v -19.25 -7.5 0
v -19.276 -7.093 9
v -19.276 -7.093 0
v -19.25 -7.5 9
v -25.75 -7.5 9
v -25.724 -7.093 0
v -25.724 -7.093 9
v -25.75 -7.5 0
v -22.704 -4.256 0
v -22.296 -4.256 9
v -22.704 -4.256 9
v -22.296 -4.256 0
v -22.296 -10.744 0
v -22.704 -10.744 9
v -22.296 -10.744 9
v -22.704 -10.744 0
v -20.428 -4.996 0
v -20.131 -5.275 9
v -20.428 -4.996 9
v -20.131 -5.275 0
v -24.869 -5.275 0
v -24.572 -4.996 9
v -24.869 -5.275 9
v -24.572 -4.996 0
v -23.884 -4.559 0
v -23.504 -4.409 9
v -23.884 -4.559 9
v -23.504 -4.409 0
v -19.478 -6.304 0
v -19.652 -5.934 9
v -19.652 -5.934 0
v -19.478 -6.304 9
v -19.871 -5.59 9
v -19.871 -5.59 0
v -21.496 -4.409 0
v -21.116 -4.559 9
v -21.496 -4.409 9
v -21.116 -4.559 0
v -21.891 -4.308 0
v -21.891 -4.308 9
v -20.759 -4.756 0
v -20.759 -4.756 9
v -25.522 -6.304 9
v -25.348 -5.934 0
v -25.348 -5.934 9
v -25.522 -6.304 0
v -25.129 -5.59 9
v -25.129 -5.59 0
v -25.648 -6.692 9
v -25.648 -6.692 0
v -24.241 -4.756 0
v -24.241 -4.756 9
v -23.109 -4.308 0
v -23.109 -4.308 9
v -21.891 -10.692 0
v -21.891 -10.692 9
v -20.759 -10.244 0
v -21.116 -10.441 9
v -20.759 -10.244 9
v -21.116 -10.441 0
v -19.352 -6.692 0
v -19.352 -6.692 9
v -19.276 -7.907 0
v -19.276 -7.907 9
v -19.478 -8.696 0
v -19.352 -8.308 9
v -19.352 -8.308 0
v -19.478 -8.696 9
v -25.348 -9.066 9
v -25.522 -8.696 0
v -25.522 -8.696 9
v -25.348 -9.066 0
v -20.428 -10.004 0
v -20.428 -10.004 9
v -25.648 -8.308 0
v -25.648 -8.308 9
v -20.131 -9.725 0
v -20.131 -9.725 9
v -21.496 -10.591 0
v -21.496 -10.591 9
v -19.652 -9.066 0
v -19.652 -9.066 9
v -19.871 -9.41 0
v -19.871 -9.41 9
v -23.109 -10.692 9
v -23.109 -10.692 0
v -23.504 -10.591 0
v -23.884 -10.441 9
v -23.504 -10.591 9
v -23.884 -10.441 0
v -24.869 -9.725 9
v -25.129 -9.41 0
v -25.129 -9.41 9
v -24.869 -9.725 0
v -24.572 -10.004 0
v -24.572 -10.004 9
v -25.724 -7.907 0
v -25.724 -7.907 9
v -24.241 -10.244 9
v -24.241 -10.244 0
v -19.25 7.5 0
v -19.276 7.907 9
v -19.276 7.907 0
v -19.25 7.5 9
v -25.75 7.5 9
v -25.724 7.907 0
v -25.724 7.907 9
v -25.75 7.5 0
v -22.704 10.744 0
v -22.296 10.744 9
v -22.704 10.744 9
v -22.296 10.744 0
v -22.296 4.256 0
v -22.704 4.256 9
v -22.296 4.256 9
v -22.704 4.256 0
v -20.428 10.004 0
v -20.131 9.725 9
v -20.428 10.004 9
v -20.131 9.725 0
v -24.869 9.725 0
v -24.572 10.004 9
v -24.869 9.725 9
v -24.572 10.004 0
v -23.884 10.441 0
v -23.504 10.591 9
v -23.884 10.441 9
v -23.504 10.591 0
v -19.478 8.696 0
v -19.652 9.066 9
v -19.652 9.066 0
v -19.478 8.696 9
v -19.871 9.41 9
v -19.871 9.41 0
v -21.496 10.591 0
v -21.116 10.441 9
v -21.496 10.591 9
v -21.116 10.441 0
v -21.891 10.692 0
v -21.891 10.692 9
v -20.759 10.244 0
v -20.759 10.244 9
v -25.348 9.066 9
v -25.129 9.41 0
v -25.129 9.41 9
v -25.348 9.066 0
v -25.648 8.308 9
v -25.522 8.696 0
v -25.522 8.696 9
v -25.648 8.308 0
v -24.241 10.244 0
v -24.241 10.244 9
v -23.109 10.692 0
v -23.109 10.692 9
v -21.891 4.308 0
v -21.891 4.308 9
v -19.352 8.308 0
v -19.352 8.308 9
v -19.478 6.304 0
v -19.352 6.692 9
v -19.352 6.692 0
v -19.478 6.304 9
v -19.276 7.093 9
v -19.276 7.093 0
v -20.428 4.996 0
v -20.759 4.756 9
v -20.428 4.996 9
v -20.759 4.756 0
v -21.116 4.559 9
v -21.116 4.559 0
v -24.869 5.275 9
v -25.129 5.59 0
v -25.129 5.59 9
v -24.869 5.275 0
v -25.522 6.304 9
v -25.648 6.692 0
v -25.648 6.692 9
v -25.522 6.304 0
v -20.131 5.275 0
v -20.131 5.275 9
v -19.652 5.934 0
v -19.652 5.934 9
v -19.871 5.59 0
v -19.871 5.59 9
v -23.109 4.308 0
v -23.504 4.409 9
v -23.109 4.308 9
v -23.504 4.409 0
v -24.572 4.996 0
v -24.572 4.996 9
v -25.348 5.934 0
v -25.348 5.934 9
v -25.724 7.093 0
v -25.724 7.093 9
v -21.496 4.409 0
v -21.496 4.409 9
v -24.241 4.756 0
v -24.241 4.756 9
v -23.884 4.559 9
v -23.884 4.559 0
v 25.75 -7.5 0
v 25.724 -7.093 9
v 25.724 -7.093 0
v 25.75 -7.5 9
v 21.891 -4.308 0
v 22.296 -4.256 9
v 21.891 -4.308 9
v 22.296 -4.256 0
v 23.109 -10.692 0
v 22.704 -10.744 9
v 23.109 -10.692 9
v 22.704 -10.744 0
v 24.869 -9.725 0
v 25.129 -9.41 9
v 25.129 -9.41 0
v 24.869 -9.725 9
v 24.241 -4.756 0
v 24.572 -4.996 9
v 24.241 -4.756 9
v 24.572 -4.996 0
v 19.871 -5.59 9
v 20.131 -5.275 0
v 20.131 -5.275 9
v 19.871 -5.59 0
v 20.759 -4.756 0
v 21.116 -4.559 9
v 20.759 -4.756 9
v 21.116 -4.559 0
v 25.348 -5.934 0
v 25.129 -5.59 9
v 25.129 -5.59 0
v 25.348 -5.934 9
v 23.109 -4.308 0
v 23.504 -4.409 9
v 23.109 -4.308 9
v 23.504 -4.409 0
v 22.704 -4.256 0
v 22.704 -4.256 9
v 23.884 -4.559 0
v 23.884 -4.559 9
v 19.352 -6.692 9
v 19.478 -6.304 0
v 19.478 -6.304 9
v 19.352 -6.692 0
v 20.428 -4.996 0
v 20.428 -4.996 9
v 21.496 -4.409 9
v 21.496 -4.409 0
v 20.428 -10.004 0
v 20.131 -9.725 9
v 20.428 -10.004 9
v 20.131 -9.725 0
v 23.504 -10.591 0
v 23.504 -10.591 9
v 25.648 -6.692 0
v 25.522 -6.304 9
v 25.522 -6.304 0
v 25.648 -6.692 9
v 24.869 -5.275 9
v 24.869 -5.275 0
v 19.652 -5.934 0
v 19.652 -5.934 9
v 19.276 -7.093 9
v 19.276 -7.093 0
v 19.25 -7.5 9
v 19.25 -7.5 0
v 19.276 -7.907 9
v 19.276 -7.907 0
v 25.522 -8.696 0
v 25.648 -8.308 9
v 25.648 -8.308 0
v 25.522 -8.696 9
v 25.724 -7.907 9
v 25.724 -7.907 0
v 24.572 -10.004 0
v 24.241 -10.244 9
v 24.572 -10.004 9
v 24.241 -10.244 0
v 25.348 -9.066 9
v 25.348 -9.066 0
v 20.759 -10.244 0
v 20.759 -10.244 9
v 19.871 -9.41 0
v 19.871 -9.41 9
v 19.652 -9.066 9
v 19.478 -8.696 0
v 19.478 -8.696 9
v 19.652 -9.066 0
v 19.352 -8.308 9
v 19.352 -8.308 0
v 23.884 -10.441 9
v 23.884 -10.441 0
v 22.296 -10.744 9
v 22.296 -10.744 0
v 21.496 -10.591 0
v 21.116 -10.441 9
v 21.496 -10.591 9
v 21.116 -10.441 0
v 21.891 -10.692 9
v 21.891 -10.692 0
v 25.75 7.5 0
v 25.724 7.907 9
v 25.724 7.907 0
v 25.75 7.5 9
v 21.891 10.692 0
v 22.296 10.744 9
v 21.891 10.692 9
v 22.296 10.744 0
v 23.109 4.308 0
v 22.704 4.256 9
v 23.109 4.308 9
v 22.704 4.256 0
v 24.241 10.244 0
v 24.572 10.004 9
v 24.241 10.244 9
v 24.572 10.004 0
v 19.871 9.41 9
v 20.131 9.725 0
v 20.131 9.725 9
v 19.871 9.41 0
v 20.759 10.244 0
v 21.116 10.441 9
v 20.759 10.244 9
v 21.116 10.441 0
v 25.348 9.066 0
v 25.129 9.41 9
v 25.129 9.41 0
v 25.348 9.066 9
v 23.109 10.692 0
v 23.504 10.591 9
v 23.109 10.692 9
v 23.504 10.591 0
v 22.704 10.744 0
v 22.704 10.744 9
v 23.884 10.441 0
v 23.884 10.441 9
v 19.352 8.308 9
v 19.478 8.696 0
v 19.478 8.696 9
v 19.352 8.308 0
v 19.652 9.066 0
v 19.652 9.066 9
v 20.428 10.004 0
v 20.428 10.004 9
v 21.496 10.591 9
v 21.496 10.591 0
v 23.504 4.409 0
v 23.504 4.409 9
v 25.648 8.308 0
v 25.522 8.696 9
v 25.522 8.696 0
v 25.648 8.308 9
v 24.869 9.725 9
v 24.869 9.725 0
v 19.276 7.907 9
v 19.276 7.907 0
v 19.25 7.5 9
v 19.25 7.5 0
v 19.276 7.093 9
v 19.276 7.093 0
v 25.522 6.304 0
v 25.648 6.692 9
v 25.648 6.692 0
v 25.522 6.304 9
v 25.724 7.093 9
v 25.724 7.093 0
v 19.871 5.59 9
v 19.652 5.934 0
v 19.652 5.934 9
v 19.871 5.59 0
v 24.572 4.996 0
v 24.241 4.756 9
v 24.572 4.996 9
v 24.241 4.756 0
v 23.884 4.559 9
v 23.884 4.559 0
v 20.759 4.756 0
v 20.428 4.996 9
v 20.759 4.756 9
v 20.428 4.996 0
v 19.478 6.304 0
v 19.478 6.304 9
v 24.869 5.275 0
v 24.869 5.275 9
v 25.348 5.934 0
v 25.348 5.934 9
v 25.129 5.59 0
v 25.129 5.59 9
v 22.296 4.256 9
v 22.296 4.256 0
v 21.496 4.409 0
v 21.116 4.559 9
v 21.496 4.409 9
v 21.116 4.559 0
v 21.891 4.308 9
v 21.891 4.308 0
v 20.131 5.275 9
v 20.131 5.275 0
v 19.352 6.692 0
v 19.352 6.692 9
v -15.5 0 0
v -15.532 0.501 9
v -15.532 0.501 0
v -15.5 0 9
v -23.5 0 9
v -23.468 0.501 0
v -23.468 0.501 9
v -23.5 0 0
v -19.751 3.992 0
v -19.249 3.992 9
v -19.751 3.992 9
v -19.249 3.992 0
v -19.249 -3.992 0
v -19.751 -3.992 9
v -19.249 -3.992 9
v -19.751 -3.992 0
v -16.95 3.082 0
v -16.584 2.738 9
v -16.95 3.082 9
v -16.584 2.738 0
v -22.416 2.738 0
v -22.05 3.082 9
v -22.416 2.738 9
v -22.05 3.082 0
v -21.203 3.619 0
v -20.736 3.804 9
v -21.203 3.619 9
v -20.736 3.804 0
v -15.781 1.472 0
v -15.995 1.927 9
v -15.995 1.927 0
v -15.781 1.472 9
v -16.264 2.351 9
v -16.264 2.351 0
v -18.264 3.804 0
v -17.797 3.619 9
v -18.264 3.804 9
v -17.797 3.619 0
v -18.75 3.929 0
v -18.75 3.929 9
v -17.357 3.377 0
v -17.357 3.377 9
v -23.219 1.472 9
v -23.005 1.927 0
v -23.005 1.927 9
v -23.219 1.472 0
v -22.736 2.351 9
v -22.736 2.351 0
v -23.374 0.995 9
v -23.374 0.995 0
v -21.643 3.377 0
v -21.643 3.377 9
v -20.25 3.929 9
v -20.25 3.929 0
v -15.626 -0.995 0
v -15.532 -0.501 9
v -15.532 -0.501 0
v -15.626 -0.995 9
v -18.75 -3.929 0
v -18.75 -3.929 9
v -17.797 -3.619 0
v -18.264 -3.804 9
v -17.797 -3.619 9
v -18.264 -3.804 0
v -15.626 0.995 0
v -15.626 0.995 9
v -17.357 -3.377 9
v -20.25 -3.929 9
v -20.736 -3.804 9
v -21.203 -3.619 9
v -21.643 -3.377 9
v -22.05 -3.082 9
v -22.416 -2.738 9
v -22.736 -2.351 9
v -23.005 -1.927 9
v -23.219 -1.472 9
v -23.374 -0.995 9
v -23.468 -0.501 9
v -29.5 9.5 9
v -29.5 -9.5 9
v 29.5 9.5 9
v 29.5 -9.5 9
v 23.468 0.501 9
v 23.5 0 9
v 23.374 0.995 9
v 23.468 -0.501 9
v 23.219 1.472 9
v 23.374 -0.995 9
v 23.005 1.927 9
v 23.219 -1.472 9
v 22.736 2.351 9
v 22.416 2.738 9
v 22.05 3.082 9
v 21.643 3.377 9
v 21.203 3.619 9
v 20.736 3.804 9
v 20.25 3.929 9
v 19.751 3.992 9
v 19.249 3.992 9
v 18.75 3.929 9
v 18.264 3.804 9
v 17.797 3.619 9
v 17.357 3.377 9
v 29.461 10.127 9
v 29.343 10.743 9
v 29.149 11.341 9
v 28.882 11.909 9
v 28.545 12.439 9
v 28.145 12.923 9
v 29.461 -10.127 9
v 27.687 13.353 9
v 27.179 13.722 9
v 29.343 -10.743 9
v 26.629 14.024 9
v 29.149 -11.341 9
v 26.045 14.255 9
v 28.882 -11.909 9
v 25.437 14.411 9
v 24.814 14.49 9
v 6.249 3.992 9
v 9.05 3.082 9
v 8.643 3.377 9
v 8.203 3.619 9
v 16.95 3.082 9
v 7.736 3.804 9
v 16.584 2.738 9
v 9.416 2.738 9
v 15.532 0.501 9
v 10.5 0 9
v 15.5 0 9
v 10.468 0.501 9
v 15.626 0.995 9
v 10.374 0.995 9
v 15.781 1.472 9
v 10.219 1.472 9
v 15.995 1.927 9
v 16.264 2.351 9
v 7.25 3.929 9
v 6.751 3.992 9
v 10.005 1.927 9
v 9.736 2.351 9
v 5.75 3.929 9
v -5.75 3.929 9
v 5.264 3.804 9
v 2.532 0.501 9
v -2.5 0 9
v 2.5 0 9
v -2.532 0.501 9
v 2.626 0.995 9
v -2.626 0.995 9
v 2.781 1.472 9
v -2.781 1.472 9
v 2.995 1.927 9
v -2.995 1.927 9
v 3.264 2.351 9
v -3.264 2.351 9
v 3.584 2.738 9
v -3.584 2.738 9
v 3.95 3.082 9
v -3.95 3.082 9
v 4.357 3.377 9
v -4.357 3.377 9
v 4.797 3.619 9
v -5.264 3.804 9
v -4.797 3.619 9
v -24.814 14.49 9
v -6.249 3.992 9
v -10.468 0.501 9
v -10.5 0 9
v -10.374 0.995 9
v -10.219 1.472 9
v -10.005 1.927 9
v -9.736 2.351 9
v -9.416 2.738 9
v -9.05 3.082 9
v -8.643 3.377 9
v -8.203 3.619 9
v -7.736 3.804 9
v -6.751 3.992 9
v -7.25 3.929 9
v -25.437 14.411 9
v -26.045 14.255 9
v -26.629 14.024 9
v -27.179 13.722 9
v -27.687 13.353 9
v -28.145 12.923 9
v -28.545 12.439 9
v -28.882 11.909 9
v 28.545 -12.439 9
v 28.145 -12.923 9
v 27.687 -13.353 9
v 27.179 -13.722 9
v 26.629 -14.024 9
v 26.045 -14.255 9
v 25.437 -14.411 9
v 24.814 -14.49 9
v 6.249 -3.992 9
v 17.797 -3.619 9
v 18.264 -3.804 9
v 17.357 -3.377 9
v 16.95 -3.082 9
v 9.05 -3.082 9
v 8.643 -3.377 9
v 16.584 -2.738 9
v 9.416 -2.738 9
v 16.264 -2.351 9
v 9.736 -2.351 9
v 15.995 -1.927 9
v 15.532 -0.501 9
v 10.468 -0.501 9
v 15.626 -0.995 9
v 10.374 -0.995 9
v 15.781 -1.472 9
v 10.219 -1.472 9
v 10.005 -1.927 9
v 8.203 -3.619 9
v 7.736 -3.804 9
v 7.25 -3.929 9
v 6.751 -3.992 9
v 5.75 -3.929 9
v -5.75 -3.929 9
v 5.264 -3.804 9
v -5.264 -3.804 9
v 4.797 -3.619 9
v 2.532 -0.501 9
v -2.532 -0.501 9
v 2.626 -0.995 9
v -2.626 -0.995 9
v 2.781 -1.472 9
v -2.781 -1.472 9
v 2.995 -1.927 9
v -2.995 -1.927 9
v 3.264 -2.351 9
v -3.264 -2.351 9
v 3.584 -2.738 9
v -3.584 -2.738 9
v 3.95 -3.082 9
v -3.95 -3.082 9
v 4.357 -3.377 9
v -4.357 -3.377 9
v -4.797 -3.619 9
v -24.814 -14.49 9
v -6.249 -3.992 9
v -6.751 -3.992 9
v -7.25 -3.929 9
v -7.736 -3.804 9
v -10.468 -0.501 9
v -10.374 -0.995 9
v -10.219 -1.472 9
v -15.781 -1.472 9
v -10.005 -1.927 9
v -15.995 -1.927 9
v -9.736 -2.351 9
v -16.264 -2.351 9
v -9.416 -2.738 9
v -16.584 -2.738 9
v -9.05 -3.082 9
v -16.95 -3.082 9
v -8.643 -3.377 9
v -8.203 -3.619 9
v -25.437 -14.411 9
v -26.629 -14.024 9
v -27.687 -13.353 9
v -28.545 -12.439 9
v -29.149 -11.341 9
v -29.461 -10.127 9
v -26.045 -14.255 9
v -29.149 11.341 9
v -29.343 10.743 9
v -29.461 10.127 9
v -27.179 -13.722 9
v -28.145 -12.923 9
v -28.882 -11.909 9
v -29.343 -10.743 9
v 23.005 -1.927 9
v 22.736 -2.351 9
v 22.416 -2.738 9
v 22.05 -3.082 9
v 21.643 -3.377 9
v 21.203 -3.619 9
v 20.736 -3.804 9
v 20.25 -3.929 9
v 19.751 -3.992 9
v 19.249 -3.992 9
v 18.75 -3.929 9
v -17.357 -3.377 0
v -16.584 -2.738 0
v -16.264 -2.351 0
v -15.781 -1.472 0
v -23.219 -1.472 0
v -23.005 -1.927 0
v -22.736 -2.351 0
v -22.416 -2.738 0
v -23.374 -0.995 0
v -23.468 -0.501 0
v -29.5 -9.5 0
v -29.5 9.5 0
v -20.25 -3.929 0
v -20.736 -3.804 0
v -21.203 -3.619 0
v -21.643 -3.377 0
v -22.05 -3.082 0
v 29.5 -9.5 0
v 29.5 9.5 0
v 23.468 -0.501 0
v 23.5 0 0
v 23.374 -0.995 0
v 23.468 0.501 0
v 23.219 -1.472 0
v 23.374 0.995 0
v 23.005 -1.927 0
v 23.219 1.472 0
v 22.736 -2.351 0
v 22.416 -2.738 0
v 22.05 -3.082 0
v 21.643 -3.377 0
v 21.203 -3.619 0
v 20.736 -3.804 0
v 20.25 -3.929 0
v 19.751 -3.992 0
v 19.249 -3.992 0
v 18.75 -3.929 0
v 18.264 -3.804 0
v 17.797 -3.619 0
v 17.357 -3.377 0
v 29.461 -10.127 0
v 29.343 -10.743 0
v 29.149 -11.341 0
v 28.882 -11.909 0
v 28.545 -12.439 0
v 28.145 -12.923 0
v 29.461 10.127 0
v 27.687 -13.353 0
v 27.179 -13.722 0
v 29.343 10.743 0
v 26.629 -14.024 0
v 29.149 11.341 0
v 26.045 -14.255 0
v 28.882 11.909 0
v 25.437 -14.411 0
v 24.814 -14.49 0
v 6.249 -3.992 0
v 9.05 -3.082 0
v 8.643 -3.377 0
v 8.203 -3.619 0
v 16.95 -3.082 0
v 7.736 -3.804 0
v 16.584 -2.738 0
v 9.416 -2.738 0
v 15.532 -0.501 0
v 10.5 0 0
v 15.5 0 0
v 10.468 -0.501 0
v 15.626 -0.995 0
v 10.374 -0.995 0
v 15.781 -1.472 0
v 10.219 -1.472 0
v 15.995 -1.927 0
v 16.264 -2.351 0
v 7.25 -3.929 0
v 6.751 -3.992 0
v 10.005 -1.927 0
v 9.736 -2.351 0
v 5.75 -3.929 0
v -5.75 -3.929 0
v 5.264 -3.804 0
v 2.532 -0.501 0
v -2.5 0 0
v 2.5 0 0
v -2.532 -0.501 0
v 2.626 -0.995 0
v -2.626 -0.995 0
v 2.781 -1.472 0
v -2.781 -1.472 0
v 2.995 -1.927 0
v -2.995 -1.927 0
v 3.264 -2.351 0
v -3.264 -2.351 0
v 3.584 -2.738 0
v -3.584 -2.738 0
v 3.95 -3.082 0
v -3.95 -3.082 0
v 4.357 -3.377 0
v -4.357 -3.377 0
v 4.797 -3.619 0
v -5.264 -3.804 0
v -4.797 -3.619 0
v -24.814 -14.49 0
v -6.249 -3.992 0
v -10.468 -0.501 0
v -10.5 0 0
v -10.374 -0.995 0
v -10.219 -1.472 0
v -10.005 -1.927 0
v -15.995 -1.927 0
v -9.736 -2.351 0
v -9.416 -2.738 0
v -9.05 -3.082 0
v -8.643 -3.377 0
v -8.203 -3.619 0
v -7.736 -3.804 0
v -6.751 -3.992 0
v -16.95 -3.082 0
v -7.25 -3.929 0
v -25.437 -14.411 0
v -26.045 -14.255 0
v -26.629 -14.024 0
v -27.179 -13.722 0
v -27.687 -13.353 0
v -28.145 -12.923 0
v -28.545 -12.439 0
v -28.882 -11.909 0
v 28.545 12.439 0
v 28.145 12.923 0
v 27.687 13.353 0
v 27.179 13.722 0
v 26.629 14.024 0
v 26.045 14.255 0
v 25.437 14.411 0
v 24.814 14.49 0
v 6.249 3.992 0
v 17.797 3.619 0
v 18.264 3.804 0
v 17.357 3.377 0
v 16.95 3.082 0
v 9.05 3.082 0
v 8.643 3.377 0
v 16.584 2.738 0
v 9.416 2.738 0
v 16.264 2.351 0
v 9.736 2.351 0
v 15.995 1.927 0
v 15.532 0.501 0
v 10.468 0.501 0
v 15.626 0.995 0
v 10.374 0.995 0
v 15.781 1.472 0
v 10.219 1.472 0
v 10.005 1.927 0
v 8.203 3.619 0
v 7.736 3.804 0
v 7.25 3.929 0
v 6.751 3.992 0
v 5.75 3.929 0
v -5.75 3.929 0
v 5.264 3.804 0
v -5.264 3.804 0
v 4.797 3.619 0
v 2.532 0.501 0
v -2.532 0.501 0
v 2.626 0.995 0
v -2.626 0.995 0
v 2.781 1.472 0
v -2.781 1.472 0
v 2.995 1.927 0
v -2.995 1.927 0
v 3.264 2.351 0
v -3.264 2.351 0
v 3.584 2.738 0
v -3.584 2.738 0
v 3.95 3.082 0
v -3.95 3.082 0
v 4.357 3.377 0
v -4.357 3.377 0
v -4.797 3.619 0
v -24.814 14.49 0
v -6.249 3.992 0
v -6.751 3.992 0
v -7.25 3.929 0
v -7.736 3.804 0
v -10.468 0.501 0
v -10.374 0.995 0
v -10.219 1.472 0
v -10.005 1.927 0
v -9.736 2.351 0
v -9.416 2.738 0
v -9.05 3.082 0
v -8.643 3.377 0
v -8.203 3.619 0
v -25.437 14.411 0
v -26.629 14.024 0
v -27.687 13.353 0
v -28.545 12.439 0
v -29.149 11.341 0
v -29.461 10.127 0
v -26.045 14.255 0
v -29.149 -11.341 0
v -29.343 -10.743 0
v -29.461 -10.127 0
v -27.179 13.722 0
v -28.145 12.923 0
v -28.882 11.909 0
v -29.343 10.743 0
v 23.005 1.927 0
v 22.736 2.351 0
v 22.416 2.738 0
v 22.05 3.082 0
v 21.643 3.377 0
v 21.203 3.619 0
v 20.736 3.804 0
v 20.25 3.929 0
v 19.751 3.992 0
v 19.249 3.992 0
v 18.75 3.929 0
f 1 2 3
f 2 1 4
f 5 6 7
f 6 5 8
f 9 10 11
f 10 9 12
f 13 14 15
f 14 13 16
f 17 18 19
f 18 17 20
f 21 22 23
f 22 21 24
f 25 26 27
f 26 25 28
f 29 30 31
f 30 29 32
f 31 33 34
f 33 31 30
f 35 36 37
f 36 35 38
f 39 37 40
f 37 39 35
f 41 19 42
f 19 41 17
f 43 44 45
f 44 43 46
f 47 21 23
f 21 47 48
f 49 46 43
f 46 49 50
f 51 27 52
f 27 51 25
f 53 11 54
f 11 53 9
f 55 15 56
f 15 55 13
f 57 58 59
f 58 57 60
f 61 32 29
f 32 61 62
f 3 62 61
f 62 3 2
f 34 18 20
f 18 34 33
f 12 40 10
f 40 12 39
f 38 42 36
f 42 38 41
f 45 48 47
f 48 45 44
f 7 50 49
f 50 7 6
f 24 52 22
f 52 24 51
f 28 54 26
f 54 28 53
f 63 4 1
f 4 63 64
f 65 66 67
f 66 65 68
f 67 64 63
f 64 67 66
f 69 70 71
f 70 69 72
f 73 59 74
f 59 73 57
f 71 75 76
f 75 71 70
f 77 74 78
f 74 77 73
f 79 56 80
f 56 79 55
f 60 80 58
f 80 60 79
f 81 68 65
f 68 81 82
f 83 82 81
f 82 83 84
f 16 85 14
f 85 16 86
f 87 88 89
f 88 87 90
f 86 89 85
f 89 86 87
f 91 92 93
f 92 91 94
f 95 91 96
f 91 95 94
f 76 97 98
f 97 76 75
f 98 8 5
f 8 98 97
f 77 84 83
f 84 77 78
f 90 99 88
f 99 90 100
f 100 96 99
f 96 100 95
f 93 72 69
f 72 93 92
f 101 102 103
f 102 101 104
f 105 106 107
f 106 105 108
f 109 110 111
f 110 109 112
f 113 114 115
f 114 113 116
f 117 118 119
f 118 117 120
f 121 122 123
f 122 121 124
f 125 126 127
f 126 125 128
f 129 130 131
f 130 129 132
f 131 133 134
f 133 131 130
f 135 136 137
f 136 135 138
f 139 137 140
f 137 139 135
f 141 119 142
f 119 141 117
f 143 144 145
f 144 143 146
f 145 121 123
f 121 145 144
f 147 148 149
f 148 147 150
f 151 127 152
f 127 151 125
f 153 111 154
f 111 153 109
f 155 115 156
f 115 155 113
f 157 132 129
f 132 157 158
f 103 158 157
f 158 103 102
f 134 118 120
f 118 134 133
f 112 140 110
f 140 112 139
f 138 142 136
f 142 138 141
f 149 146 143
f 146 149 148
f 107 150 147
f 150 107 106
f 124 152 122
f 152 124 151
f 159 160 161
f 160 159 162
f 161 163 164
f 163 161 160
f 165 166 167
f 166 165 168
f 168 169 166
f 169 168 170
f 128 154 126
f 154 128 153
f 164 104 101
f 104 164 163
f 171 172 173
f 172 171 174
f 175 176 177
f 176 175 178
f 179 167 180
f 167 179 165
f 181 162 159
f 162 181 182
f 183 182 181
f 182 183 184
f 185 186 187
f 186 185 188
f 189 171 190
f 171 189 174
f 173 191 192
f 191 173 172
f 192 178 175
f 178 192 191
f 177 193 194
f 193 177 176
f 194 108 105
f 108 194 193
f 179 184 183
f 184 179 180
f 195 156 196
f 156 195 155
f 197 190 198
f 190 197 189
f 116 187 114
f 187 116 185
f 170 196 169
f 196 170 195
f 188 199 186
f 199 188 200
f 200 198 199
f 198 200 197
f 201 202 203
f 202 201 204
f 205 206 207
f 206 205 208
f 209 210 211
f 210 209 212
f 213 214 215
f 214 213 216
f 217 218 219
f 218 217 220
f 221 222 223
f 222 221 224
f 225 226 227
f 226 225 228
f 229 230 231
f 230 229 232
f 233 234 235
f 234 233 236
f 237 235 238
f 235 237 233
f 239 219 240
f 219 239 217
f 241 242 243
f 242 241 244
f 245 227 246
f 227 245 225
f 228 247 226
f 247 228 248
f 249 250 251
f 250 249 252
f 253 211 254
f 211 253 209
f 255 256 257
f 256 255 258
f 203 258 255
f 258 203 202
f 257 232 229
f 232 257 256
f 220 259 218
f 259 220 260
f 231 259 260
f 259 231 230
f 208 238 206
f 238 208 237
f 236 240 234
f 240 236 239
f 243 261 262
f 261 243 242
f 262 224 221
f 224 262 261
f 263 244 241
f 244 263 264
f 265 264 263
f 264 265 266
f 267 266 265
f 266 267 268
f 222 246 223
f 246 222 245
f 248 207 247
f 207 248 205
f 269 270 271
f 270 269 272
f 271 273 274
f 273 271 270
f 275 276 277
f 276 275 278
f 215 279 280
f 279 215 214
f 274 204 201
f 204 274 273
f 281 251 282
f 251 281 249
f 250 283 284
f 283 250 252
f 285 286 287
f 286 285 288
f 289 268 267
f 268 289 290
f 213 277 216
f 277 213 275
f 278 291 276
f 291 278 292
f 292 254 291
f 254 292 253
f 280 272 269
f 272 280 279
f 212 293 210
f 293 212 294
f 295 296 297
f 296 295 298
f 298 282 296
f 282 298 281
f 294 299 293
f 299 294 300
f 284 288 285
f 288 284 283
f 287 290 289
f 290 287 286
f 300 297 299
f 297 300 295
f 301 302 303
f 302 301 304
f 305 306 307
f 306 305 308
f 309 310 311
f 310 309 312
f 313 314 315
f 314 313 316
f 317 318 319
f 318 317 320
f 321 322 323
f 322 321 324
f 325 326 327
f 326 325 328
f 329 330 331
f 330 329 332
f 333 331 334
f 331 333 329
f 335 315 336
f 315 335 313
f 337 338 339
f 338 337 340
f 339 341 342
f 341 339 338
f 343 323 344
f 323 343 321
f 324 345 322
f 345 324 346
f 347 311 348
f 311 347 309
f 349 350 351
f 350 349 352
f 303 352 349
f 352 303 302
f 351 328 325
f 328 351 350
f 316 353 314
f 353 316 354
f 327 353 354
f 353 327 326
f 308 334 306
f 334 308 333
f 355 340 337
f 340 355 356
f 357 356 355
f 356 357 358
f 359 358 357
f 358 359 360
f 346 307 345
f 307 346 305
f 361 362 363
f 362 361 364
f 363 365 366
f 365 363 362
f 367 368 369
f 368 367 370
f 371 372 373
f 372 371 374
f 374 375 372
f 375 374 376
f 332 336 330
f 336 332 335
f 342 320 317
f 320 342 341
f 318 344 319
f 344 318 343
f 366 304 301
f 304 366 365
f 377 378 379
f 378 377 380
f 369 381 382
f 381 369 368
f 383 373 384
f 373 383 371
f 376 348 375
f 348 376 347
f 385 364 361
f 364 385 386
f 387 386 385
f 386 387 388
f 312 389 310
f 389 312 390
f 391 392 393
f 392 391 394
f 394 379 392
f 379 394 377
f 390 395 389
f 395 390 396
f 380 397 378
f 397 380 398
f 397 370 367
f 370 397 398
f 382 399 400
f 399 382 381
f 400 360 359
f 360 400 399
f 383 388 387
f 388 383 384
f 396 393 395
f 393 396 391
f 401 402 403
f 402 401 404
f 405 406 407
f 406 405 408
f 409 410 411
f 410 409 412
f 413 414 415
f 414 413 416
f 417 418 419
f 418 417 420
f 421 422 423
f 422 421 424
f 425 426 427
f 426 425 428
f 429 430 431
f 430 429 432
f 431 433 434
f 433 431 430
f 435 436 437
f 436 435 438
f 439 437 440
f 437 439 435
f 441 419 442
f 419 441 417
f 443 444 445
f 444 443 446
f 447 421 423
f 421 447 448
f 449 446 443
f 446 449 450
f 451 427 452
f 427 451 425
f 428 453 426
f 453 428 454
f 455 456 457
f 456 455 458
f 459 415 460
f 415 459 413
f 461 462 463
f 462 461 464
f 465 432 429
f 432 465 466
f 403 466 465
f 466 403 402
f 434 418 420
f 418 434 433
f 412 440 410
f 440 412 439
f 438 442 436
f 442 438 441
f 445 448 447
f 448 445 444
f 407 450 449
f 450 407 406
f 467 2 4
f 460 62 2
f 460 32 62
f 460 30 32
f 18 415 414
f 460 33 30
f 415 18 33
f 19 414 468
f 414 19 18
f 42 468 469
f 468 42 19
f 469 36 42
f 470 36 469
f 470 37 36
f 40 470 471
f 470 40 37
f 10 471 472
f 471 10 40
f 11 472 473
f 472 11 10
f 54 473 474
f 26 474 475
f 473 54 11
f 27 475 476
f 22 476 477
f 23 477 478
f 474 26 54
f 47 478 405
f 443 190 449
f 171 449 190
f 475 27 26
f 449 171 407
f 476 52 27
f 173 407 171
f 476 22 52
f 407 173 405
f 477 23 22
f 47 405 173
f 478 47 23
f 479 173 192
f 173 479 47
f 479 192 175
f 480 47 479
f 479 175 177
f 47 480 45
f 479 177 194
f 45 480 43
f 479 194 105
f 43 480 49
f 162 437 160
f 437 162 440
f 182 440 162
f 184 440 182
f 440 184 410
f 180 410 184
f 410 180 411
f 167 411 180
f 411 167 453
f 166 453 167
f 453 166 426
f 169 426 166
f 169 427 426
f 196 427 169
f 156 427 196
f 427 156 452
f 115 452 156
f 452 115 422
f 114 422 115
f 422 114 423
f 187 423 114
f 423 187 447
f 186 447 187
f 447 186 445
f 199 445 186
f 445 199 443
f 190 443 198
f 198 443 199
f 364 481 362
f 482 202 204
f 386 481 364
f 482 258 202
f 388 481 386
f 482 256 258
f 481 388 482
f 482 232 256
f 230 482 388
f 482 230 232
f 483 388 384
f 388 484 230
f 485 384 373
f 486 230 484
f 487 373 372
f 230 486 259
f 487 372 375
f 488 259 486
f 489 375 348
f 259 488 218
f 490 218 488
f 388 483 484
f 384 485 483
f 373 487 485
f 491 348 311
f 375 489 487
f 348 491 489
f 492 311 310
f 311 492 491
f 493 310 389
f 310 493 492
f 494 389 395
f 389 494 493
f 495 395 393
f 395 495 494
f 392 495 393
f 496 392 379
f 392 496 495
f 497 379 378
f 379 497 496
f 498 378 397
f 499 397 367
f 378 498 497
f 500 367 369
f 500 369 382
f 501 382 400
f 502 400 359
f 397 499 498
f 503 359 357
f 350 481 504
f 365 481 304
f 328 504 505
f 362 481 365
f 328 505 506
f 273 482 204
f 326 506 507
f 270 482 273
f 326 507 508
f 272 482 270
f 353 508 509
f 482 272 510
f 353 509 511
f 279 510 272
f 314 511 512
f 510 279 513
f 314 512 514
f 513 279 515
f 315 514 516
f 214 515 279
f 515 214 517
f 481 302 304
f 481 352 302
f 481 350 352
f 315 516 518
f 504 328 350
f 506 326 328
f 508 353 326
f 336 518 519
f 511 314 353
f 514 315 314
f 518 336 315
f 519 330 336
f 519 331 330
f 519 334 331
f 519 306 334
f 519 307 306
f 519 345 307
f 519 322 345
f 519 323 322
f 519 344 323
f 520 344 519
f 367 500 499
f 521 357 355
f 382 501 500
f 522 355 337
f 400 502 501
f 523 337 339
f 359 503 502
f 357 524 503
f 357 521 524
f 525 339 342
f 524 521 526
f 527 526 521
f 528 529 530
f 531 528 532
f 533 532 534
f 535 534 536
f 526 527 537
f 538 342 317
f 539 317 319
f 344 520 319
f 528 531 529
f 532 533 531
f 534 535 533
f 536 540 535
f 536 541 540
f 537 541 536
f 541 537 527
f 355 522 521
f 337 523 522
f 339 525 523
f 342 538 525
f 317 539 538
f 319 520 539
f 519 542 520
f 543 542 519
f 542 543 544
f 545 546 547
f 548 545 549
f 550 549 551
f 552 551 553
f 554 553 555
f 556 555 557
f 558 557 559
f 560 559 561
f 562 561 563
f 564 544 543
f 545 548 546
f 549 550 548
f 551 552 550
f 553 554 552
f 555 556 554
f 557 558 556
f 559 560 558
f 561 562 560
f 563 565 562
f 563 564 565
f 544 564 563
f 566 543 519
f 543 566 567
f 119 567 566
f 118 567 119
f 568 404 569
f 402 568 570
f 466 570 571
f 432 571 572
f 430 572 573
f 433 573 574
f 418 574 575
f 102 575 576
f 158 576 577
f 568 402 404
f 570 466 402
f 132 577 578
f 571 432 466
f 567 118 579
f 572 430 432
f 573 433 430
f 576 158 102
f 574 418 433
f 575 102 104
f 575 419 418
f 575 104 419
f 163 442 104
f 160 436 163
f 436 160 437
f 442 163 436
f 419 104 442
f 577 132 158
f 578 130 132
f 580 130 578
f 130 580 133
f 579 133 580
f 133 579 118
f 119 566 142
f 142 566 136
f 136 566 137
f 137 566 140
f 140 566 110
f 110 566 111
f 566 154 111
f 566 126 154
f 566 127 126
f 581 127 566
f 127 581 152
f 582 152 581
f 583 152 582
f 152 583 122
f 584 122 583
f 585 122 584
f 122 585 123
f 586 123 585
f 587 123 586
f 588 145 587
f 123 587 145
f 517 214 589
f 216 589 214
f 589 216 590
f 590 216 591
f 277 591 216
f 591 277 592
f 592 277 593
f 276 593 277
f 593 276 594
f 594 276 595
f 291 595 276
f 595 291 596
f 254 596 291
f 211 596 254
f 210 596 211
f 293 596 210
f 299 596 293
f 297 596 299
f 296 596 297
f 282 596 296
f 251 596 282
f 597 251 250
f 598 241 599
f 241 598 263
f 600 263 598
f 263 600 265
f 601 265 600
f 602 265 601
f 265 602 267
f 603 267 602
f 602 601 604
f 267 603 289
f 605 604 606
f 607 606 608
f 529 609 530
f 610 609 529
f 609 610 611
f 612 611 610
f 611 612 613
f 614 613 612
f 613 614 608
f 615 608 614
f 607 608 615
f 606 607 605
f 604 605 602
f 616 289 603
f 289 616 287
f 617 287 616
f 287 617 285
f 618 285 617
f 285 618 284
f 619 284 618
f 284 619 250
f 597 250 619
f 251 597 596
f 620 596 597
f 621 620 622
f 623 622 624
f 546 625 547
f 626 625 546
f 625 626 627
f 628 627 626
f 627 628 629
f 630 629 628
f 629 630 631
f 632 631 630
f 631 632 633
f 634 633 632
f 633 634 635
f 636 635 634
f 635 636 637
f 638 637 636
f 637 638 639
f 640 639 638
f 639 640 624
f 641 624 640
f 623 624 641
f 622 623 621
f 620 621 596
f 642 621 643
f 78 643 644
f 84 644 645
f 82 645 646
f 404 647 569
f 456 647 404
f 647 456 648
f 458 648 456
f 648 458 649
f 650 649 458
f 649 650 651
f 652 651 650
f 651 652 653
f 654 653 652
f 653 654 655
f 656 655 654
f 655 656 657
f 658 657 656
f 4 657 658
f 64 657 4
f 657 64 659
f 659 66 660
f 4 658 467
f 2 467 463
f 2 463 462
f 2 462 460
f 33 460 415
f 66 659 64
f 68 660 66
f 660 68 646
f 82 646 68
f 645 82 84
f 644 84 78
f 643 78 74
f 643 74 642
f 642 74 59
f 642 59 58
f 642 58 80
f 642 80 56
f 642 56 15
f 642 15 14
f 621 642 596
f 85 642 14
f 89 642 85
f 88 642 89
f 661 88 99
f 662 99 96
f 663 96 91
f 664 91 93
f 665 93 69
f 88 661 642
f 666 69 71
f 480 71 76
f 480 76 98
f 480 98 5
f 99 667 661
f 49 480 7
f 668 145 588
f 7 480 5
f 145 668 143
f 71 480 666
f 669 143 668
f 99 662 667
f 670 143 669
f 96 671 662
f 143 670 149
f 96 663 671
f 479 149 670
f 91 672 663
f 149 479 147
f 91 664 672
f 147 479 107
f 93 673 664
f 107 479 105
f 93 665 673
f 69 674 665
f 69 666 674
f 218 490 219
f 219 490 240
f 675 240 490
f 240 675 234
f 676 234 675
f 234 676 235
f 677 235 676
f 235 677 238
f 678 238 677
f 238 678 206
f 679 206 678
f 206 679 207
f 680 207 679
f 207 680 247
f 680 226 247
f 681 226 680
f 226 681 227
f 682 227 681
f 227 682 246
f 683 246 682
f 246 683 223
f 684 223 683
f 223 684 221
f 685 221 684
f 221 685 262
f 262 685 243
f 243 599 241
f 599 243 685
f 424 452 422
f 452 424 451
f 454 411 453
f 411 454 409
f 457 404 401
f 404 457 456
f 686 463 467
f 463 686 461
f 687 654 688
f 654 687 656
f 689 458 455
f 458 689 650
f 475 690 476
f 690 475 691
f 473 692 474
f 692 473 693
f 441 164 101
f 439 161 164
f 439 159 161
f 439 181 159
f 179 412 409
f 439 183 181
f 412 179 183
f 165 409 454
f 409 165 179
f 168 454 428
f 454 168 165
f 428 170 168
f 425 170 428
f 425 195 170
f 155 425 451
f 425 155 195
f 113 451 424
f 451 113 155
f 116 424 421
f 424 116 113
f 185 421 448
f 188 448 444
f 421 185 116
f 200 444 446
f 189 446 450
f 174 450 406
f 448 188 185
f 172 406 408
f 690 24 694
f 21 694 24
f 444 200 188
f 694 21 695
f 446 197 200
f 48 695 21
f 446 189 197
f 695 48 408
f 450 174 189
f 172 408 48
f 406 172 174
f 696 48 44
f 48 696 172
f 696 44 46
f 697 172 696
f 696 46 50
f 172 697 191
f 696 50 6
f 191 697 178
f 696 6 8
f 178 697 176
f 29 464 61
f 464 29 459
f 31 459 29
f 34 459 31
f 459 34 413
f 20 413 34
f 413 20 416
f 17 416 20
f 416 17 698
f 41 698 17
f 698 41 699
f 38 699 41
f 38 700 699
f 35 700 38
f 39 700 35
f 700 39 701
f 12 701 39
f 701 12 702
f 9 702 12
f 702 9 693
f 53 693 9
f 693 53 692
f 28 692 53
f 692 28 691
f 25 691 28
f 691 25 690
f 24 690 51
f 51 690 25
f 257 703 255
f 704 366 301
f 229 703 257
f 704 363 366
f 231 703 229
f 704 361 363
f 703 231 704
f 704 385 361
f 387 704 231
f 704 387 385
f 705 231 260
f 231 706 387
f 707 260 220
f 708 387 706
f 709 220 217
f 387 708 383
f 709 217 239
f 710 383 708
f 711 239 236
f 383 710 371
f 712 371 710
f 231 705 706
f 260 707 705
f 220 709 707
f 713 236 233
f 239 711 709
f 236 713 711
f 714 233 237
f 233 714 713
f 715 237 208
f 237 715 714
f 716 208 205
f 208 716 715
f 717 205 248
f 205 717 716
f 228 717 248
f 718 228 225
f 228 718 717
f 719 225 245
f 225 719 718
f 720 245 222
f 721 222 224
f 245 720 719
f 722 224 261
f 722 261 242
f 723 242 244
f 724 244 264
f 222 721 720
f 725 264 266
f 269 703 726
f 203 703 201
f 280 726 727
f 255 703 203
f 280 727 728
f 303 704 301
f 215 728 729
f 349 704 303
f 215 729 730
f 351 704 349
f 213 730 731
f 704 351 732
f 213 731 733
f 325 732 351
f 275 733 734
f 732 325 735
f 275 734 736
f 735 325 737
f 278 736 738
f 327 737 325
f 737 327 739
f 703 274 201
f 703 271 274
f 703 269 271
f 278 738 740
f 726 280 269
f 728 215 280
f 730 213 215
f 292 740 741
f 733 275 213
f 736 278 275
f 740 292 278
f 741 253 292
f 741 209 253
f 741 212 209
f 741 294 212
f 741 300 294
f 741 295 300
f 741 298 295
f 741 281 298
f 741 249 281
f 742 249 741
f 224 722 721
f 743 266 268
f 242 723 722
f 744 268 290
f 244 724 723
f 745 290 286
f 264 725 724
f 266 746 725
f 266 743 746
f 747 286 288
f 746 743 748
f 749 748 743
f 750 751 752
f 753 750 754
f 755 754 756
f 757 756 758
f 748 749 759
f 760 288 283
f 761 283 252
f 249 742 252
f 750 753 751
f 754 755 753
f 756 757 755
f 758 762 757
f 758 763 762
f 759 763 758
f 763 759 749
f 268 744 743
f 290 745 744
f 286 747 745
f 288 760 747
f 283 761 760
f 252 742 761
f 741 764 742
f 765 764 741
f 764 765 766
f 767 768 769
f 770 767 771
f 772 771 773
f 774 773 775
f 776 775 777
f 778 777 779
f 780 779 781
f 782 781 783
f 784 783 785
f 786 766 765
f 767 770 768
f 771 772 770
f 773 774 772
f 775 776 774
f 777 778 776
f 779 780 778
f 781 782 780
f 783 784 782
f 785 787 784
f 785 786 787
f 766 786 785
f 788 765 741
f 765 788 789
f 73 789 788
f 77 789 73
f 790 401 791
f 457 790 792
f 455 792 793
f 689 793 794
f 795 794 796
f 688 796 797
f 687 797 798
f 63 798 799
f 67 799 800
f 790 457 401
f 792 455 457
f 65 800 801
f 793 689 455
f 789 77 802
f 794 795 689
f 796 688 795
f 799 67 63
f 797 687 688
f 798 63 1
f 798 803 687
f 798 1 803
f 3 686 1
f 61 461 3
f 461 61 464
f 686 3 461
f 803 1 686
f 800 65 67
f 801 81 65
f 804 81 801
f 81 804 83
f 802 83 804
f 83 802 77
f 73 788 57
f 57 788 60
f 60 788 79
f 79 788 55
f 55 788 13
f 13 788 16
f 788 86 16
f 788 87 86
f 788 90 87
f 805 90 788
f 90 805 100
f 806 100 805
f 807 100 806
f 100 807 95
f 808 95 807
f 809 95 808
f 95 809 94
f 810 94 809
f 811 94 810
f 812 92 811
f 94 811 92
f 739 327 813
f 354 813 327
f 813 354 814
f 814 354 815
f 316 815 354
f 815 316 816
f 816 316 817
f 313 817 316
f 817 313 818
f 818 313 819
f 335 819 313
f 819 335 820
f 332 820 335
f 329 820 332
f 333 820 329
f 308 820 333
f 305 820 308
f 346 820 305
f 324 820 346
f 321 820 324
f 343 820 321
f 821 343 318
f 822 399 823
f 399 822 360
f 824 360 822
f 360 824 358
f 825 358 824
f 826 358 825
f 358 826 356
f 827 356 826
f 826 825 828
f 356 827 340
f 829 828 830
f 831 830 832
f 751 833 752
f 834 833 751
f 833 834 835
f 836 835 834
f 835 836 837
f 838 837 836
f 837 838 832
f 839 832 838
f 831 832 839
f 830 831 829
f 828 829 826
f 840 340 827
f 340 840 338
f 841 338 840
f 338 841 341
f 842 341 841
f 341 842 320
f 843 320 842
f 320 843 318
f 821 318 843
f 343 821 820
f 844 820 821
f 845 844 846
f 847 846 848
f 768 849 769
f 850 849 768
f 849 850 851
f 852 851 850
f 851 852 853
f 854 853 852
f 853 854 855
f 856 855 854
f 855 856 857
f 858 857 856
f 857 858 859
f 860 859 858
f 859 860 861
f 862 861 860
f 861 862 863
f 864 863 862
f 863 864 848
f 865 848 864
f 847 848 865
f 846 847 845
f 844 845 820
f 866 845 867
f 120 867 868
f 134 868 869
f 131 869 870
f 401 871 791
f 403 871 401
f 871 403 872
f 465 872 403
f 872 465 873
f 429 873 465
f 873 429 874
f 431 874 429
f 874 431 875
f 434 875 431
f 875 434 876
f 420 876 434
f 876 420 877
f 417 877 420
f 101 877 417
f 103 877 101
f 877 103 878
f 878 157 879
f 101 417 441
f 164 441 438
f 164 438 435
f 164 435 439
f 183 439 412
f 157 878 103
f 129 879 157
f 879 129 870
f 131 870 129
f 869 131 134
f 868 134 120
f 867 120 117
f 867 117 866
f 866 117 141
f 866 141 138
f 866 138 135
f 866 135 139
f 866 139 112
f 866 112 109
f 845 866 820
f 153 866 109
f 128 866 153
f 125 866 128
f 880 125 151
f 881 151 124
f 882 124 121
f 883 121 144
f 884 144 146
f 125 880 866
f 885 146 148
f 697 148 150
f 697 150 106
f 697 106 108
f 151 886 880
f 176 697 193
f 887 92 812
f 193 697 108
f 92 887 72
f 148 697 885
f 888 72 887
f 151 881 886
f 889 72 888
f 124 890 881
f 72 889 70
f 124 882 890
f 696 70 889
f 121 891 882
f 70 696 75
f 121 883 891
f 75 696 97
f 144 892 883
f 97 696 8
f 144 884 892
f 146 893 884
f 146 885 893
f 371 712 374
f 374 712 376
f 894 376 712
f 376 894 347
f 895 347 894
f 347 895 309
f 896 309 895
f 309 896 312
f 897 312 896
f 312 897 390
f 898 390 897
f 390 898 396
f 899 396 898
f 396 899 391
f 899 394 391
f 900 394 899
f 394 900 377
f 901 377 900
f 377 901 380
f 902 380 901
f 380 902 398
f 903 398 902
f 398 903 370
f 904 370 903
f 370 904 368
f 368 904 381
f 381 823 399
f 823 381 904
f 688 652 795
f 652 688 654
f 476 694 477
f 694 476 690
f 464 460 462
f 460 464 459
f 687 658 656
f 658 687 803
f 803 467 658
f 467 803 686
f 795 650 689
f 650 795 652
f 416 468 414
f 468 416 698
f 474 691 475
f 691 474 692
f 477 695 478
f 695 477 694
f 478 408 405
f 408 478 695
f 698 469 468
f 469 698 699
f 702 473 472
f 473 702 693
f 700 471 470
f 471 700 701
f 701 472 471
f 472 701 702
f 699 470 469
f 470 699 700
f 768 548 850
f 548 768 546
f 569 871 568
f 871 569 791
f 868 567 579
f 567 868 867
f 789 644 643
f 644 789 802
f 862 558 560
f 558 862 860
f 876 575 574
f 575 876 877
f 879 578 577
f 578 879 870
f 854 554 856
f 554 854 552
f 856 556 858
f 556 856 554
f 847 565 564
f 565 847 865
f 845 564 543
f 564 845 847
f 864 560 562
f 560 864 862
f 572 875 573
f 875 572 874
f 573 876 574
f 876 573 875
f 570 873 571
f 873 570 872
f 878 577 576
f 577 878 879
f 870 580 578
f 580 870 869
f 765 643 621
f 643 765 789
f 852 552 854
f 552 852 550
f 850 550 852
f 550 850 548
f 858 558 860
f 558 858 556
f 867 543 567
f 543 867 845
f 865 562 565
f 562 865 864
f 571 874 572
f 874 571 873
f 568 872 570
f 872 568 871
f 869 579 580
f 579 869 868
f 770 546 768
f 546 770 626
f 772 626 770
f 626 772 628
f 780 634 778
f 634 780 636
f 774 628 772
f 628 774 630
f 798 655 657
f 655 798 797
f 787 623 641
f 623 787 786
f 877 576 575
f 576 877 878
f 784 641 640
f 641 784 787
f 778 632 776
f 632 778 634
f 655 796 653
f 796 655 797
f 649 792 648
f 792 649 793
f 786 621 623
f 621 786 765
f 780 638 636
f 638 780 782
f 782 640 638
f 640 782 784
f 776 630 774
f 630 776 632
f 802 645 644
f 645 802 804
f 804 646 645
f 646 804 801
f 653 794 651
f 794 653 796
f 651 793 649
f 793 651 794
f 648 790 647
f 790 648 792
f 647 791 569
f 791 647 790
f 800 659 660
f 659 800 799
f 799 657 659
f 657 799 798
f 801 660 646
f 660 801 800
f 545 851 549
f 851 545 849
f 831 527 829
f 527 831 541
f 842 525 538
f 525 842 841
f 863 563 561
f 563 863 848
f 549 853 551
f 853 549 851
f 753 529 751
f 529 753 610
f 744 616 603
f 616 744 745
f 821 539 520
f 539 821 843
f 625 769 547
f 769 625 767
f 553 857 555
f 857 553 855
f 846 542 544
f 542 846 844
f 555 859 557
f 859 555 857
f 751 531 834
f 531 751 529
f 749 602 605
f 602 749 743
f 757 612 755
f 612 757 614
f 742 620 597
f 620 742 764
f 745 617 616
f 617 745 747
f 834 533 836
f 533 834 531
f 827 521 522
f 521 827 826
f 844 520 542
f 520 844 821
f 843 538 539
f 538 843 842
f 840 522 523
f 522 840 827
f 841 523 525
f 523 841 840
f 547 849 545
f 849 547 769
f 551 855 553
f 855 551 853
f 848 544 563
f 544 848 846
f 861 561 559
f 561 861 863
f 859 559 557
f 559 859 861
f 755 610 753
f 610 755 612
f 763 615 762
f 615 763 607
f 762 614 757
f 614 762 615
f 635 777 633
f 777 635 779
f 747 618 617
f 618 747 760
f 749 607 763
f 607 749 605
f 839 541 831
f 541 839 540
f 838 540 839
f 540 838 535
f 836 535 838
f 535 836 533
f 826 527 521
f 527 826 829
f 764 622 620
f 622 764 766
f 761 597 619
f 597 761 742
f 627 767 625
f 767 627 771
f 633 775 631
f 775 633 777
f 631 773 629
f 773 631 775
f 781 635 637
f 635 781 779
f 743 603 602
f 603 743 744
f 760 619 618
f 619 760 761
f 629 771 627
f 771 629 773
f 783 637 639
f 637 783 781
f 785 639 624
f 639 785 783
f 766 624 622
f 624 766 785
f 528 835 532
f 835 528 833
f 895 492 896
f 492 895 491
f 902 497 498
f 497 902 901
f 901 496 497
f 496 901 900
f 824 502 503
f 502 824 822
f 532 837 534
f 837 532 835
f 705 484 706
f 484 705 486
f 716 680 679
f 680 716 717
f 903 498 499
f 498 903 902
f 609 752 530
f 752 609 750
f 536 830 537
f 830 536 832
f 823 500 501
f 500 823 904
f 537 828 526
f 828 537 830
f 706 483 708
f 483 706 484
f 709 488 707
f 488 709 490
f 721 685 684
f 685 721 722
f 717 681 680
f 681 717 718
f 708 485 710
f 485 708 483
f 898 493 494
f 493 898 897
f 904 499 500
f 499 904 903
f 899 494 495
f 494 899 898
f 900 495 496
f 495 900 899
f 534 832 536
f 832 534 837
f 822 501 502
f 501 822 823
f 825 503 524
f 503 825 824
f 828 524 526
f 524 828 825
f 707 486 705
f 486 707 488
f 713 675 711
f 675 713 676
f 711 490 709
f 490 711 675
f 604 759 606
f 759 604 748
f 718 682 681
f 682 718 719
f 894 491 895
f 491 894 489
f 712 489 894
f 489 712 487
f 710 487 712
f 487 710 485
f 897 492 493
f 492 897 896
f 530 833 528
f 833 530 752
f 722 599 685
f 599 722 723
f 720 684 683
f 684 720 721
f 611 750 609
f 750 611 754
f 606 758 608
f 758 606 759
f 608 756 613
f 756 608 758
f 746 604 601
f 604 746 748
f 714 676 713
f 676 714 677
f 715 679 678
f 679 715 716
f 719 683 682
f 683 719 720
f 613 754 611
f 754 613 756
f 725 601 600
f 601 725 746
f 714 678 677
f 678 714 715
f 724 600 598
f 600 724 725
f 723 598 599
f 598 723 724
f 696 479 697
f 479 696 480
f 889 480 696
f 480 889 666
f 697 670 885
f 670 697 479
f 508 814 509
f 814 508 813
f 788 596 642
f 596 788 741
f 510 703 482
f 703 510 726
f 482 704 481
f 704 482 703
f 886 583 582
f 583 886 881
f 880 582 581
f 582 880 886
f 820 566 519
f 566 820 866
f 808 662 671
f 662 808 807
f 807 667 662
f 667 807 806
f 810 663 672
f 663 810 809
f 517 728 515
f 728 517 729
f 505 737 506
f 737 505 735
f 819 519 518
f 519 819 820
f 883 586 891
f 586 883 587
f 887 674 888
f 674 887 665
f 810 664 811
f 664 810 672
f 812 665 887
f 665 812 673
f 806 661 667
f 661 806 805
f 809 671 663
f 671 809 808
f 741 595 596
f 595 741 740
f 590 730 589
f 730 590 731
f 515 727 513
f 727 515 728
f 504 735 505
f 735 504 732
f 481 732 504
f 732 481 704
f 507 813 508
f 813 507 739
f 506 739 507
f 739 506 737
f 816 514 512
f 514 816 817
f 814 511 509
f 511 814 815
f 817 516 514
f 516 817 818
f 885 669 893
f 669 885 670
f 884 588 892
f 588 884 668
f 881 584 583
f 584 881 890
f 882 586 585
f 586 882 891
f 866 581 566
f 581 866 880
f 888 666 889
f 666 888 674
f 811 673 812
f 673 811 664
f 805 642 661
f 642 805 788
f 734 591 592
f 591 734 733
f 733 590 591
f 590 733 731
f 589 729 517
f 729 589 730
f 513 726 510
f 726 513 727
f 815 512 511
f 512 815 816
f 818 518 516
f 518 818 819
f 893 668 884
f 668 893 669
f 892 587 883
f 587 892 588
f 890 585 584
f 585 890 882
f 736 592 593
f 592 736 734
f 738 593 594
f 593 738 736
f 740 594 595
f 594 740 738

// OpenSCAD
$fn = 50;


difference() {
	union() {
		hull() {
			translate(v = [-24.5000000000, 9.5000000000, 0]) {
				cylinder(h = 9, r = 5);
			}
			translate(v = [24.5000000000, 9.5000000000, 0]) {
				cylinder(h = 9, r = 5);
			}
			translate(v = [-24.5000000000, -9.5000000000, 0]) {
				cylinder(h = 9, r = 5);
			}
			translate(v = [24.5000000000, -9.5000000000, 0]) {
				cylinder(h = 9, r = 5);
			}
		}
	}
	union() {
		#translate(v = [-22.5000000000, -7.5000000000, -100.0000000000]) {
			cylinder(h = 200, r = 3.2500000000);
		}
		#translate(v = [-22.5000000000, 7.5000000000, -100.0000000000]) {
			cylinder(h = 200, r = 3.2500000000);
		}
		#translate(v = [22.5000000000, -7.5000000000, -100.0000000000]) {
			cylinder(h = 200, r = 3.2500000000);
		}
		#translate(v = [22.5000000000, 7.5000000000, -100.0000000000]) {
			cylinder(h = 200, r = 3.2500000000);
		}
		#translate(v = [-19.5000000000, 0, 0]) {
			cylinder(h = 9, r = 4.0000000000);
		}
		#translate(v = [-6.5000000000, 0, 0]) {
			cylinder(h = 9, r = 4.0000000000);
		}
		#translate(v = [6.5000000000, 0, 0]) {
			cylinder(h = 9, r = 4.0000000000);
		}
		#translate(v = [19.5000000000, 0, 0]) {
			cylinder(h = 9, r = 4.0000000000);
		}
	}
}
